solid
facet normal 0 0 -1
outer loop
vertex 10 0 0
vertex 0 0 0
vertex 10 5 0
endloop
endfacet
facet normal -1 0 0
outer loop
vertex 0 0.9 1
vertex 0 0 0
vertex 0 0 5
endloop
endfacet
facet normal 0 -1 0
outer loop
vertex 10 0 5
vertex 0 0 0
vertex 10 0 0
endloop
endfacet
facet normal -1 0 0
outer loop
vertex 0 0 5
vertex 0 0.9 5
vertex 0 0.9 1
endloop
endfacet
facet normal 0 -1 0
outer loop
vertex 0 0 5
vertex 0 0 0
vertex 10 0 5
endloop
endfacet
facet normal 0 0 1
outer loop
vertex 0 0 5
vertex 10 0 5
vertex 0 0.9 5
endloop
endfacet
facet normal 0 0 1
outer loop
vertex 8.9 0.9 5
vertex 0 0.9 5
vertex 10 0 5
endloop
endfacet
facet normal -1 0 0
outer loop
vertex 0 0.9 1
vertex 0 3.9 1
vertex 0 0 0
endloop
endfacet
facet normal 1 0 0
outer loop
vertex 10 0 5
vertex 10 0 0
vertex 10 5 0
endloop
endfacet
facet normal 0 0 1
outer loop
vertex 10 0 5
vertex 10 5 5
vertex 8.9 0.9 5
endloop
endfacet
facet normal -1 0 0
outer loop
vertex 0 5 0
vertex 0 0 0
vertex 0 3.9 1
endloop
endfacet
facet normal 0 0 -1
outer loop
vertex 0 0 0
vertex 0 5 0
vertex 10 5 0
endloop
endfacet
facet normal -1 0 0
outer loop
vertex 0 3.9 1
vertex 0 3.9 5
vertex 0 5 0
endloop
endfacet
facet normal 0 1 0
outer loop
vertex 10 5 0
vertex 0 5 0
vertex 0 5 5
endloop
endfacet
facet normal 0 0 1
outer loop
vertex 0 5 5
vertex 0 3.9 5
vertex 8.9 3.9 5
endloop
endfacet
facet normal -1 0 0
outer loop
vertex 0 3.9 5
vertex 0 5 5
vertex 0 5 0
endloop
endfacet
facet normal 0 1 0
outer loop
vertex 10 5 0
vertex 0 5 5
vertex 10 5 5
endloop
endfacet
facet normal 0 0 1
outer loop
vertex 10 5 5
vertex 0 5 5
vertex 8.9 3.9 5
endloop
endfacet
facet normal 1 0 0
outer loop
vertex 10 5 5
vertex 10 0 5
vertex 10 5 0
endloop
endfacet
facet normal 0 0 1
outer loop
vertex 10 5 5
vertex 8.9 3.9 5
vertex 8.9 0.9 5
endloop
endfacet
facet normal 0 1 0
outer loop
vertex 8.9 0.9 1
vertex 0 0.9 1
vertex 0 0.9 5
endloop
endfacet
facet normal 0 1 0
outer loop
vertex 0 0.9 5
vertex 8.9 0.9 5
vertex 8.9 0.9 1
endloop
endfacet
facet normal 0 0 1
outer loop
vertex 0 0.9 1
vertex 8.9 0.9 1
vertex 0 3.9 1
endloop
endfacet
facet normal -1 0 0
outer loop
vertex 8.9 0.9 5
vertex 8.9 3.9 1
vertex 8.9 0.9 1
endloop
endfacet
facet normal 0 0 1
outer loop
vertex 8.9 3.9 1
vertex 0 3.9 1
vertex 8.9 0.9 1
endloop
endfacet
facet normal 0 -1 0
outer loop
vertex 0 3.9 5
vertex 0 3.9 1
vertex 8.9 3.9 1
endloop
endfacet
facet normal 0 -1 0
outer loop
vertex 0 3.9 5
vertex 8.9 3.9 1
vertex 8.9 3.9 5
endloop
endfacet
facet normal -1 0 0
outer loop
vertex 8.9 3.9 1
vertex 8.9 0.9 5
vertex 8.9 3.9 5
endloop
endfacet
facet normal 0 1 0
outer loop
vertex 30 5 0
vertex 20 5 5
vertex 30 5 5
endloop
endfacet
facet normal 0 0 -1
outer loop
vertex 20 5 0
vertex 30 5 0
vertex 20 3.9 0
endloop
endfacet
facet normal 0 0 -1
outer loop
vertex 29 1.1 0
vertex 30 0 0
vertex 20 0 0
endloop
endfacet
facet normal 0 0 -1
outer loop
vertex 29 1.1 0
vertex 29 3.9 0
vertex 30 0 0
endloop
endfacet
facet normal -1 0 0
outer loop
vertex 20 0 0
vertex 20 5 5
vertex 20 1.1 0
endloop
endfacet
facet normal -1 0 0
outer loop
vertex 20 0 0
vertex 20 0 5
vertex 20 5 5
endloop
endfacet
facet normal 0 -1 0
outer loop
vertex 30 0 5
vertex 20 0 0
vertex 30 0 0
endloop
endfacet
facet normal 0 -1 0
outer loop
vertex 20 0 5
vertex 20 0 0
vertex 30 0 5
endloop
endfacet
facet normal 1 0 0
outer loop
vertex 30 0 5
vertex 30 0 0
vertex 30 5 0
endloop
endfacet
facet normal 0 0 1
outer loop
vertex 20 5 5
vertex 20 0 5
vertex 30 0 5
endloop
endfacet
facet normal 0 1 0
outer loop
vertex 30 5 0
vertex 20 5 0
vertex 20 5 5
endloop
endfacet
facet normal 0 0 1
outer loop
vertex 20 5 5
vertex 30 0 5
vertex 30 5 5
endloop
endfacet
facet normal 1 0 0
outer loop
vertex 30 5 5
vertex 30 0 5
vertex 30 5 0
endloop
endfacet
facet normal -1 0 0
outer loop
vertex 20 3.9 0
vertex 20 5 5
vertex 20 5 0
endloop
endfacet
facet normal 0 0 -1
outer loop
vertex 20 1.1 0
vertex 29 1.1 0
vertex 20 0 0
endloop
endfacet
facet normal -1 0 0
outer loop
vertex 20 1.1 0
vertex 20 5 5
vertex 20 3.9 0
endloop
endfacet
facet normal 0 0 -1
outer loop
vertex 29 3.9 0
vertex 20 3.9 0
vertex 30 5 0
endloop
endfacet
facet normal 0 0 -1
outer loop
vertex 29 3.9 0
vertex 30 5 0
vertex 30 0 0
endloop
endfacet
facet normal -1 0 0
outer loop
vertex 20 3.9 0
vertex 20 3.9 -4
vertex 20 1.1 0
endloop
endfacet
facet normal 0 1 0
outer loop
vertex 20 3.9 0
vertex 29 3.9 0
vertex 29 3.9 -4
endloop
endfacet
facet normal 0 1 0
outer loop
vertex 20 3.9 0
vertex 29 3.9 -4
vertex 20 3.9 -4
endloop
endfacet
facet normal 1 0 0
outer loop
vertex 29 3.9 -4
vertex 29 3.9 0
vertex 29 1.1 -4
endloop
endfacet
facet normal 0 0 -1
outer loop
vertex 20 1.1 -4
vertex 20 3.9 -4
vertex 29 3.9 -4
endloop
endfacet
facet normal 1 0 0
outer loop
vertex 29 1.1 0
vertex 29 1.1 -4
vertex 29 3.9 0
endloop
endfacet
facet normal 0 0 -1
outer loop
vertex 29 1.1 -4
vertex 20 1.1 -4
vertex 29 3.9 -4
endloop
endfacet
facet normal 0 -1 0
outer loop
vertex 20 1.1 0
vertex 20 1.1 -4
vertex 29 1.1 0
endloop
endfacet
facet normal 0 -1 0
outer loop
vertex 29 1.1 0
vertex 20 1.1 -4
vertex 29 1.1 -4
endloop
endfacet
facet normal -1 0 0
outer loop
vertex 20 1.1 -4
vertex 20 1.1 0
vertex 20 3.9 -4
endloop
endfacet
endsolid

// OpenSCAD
size = 5;
width = 10;
m_2 = 0.2;
m = 0.1;

difference()
{
    cube([width,size,size]);
    translate([-m,-m,5])
    {
        cut_wall(size);
    }
}
    


module cut_wall(size)
{
    translate([0,1,-size + 1])
    {
        cube([width - 1,size - 2,size]);
    }
}

module wall(size)
{
    cube([10,size,size]);
    smaller_size = size - m_2;

    translate([0,1 + m,-size + 1])
    {
        cube([width - 1,size - 2 - m_2,size]);
    }
}

translate([20,0,0])
{
    wall(5);
}
